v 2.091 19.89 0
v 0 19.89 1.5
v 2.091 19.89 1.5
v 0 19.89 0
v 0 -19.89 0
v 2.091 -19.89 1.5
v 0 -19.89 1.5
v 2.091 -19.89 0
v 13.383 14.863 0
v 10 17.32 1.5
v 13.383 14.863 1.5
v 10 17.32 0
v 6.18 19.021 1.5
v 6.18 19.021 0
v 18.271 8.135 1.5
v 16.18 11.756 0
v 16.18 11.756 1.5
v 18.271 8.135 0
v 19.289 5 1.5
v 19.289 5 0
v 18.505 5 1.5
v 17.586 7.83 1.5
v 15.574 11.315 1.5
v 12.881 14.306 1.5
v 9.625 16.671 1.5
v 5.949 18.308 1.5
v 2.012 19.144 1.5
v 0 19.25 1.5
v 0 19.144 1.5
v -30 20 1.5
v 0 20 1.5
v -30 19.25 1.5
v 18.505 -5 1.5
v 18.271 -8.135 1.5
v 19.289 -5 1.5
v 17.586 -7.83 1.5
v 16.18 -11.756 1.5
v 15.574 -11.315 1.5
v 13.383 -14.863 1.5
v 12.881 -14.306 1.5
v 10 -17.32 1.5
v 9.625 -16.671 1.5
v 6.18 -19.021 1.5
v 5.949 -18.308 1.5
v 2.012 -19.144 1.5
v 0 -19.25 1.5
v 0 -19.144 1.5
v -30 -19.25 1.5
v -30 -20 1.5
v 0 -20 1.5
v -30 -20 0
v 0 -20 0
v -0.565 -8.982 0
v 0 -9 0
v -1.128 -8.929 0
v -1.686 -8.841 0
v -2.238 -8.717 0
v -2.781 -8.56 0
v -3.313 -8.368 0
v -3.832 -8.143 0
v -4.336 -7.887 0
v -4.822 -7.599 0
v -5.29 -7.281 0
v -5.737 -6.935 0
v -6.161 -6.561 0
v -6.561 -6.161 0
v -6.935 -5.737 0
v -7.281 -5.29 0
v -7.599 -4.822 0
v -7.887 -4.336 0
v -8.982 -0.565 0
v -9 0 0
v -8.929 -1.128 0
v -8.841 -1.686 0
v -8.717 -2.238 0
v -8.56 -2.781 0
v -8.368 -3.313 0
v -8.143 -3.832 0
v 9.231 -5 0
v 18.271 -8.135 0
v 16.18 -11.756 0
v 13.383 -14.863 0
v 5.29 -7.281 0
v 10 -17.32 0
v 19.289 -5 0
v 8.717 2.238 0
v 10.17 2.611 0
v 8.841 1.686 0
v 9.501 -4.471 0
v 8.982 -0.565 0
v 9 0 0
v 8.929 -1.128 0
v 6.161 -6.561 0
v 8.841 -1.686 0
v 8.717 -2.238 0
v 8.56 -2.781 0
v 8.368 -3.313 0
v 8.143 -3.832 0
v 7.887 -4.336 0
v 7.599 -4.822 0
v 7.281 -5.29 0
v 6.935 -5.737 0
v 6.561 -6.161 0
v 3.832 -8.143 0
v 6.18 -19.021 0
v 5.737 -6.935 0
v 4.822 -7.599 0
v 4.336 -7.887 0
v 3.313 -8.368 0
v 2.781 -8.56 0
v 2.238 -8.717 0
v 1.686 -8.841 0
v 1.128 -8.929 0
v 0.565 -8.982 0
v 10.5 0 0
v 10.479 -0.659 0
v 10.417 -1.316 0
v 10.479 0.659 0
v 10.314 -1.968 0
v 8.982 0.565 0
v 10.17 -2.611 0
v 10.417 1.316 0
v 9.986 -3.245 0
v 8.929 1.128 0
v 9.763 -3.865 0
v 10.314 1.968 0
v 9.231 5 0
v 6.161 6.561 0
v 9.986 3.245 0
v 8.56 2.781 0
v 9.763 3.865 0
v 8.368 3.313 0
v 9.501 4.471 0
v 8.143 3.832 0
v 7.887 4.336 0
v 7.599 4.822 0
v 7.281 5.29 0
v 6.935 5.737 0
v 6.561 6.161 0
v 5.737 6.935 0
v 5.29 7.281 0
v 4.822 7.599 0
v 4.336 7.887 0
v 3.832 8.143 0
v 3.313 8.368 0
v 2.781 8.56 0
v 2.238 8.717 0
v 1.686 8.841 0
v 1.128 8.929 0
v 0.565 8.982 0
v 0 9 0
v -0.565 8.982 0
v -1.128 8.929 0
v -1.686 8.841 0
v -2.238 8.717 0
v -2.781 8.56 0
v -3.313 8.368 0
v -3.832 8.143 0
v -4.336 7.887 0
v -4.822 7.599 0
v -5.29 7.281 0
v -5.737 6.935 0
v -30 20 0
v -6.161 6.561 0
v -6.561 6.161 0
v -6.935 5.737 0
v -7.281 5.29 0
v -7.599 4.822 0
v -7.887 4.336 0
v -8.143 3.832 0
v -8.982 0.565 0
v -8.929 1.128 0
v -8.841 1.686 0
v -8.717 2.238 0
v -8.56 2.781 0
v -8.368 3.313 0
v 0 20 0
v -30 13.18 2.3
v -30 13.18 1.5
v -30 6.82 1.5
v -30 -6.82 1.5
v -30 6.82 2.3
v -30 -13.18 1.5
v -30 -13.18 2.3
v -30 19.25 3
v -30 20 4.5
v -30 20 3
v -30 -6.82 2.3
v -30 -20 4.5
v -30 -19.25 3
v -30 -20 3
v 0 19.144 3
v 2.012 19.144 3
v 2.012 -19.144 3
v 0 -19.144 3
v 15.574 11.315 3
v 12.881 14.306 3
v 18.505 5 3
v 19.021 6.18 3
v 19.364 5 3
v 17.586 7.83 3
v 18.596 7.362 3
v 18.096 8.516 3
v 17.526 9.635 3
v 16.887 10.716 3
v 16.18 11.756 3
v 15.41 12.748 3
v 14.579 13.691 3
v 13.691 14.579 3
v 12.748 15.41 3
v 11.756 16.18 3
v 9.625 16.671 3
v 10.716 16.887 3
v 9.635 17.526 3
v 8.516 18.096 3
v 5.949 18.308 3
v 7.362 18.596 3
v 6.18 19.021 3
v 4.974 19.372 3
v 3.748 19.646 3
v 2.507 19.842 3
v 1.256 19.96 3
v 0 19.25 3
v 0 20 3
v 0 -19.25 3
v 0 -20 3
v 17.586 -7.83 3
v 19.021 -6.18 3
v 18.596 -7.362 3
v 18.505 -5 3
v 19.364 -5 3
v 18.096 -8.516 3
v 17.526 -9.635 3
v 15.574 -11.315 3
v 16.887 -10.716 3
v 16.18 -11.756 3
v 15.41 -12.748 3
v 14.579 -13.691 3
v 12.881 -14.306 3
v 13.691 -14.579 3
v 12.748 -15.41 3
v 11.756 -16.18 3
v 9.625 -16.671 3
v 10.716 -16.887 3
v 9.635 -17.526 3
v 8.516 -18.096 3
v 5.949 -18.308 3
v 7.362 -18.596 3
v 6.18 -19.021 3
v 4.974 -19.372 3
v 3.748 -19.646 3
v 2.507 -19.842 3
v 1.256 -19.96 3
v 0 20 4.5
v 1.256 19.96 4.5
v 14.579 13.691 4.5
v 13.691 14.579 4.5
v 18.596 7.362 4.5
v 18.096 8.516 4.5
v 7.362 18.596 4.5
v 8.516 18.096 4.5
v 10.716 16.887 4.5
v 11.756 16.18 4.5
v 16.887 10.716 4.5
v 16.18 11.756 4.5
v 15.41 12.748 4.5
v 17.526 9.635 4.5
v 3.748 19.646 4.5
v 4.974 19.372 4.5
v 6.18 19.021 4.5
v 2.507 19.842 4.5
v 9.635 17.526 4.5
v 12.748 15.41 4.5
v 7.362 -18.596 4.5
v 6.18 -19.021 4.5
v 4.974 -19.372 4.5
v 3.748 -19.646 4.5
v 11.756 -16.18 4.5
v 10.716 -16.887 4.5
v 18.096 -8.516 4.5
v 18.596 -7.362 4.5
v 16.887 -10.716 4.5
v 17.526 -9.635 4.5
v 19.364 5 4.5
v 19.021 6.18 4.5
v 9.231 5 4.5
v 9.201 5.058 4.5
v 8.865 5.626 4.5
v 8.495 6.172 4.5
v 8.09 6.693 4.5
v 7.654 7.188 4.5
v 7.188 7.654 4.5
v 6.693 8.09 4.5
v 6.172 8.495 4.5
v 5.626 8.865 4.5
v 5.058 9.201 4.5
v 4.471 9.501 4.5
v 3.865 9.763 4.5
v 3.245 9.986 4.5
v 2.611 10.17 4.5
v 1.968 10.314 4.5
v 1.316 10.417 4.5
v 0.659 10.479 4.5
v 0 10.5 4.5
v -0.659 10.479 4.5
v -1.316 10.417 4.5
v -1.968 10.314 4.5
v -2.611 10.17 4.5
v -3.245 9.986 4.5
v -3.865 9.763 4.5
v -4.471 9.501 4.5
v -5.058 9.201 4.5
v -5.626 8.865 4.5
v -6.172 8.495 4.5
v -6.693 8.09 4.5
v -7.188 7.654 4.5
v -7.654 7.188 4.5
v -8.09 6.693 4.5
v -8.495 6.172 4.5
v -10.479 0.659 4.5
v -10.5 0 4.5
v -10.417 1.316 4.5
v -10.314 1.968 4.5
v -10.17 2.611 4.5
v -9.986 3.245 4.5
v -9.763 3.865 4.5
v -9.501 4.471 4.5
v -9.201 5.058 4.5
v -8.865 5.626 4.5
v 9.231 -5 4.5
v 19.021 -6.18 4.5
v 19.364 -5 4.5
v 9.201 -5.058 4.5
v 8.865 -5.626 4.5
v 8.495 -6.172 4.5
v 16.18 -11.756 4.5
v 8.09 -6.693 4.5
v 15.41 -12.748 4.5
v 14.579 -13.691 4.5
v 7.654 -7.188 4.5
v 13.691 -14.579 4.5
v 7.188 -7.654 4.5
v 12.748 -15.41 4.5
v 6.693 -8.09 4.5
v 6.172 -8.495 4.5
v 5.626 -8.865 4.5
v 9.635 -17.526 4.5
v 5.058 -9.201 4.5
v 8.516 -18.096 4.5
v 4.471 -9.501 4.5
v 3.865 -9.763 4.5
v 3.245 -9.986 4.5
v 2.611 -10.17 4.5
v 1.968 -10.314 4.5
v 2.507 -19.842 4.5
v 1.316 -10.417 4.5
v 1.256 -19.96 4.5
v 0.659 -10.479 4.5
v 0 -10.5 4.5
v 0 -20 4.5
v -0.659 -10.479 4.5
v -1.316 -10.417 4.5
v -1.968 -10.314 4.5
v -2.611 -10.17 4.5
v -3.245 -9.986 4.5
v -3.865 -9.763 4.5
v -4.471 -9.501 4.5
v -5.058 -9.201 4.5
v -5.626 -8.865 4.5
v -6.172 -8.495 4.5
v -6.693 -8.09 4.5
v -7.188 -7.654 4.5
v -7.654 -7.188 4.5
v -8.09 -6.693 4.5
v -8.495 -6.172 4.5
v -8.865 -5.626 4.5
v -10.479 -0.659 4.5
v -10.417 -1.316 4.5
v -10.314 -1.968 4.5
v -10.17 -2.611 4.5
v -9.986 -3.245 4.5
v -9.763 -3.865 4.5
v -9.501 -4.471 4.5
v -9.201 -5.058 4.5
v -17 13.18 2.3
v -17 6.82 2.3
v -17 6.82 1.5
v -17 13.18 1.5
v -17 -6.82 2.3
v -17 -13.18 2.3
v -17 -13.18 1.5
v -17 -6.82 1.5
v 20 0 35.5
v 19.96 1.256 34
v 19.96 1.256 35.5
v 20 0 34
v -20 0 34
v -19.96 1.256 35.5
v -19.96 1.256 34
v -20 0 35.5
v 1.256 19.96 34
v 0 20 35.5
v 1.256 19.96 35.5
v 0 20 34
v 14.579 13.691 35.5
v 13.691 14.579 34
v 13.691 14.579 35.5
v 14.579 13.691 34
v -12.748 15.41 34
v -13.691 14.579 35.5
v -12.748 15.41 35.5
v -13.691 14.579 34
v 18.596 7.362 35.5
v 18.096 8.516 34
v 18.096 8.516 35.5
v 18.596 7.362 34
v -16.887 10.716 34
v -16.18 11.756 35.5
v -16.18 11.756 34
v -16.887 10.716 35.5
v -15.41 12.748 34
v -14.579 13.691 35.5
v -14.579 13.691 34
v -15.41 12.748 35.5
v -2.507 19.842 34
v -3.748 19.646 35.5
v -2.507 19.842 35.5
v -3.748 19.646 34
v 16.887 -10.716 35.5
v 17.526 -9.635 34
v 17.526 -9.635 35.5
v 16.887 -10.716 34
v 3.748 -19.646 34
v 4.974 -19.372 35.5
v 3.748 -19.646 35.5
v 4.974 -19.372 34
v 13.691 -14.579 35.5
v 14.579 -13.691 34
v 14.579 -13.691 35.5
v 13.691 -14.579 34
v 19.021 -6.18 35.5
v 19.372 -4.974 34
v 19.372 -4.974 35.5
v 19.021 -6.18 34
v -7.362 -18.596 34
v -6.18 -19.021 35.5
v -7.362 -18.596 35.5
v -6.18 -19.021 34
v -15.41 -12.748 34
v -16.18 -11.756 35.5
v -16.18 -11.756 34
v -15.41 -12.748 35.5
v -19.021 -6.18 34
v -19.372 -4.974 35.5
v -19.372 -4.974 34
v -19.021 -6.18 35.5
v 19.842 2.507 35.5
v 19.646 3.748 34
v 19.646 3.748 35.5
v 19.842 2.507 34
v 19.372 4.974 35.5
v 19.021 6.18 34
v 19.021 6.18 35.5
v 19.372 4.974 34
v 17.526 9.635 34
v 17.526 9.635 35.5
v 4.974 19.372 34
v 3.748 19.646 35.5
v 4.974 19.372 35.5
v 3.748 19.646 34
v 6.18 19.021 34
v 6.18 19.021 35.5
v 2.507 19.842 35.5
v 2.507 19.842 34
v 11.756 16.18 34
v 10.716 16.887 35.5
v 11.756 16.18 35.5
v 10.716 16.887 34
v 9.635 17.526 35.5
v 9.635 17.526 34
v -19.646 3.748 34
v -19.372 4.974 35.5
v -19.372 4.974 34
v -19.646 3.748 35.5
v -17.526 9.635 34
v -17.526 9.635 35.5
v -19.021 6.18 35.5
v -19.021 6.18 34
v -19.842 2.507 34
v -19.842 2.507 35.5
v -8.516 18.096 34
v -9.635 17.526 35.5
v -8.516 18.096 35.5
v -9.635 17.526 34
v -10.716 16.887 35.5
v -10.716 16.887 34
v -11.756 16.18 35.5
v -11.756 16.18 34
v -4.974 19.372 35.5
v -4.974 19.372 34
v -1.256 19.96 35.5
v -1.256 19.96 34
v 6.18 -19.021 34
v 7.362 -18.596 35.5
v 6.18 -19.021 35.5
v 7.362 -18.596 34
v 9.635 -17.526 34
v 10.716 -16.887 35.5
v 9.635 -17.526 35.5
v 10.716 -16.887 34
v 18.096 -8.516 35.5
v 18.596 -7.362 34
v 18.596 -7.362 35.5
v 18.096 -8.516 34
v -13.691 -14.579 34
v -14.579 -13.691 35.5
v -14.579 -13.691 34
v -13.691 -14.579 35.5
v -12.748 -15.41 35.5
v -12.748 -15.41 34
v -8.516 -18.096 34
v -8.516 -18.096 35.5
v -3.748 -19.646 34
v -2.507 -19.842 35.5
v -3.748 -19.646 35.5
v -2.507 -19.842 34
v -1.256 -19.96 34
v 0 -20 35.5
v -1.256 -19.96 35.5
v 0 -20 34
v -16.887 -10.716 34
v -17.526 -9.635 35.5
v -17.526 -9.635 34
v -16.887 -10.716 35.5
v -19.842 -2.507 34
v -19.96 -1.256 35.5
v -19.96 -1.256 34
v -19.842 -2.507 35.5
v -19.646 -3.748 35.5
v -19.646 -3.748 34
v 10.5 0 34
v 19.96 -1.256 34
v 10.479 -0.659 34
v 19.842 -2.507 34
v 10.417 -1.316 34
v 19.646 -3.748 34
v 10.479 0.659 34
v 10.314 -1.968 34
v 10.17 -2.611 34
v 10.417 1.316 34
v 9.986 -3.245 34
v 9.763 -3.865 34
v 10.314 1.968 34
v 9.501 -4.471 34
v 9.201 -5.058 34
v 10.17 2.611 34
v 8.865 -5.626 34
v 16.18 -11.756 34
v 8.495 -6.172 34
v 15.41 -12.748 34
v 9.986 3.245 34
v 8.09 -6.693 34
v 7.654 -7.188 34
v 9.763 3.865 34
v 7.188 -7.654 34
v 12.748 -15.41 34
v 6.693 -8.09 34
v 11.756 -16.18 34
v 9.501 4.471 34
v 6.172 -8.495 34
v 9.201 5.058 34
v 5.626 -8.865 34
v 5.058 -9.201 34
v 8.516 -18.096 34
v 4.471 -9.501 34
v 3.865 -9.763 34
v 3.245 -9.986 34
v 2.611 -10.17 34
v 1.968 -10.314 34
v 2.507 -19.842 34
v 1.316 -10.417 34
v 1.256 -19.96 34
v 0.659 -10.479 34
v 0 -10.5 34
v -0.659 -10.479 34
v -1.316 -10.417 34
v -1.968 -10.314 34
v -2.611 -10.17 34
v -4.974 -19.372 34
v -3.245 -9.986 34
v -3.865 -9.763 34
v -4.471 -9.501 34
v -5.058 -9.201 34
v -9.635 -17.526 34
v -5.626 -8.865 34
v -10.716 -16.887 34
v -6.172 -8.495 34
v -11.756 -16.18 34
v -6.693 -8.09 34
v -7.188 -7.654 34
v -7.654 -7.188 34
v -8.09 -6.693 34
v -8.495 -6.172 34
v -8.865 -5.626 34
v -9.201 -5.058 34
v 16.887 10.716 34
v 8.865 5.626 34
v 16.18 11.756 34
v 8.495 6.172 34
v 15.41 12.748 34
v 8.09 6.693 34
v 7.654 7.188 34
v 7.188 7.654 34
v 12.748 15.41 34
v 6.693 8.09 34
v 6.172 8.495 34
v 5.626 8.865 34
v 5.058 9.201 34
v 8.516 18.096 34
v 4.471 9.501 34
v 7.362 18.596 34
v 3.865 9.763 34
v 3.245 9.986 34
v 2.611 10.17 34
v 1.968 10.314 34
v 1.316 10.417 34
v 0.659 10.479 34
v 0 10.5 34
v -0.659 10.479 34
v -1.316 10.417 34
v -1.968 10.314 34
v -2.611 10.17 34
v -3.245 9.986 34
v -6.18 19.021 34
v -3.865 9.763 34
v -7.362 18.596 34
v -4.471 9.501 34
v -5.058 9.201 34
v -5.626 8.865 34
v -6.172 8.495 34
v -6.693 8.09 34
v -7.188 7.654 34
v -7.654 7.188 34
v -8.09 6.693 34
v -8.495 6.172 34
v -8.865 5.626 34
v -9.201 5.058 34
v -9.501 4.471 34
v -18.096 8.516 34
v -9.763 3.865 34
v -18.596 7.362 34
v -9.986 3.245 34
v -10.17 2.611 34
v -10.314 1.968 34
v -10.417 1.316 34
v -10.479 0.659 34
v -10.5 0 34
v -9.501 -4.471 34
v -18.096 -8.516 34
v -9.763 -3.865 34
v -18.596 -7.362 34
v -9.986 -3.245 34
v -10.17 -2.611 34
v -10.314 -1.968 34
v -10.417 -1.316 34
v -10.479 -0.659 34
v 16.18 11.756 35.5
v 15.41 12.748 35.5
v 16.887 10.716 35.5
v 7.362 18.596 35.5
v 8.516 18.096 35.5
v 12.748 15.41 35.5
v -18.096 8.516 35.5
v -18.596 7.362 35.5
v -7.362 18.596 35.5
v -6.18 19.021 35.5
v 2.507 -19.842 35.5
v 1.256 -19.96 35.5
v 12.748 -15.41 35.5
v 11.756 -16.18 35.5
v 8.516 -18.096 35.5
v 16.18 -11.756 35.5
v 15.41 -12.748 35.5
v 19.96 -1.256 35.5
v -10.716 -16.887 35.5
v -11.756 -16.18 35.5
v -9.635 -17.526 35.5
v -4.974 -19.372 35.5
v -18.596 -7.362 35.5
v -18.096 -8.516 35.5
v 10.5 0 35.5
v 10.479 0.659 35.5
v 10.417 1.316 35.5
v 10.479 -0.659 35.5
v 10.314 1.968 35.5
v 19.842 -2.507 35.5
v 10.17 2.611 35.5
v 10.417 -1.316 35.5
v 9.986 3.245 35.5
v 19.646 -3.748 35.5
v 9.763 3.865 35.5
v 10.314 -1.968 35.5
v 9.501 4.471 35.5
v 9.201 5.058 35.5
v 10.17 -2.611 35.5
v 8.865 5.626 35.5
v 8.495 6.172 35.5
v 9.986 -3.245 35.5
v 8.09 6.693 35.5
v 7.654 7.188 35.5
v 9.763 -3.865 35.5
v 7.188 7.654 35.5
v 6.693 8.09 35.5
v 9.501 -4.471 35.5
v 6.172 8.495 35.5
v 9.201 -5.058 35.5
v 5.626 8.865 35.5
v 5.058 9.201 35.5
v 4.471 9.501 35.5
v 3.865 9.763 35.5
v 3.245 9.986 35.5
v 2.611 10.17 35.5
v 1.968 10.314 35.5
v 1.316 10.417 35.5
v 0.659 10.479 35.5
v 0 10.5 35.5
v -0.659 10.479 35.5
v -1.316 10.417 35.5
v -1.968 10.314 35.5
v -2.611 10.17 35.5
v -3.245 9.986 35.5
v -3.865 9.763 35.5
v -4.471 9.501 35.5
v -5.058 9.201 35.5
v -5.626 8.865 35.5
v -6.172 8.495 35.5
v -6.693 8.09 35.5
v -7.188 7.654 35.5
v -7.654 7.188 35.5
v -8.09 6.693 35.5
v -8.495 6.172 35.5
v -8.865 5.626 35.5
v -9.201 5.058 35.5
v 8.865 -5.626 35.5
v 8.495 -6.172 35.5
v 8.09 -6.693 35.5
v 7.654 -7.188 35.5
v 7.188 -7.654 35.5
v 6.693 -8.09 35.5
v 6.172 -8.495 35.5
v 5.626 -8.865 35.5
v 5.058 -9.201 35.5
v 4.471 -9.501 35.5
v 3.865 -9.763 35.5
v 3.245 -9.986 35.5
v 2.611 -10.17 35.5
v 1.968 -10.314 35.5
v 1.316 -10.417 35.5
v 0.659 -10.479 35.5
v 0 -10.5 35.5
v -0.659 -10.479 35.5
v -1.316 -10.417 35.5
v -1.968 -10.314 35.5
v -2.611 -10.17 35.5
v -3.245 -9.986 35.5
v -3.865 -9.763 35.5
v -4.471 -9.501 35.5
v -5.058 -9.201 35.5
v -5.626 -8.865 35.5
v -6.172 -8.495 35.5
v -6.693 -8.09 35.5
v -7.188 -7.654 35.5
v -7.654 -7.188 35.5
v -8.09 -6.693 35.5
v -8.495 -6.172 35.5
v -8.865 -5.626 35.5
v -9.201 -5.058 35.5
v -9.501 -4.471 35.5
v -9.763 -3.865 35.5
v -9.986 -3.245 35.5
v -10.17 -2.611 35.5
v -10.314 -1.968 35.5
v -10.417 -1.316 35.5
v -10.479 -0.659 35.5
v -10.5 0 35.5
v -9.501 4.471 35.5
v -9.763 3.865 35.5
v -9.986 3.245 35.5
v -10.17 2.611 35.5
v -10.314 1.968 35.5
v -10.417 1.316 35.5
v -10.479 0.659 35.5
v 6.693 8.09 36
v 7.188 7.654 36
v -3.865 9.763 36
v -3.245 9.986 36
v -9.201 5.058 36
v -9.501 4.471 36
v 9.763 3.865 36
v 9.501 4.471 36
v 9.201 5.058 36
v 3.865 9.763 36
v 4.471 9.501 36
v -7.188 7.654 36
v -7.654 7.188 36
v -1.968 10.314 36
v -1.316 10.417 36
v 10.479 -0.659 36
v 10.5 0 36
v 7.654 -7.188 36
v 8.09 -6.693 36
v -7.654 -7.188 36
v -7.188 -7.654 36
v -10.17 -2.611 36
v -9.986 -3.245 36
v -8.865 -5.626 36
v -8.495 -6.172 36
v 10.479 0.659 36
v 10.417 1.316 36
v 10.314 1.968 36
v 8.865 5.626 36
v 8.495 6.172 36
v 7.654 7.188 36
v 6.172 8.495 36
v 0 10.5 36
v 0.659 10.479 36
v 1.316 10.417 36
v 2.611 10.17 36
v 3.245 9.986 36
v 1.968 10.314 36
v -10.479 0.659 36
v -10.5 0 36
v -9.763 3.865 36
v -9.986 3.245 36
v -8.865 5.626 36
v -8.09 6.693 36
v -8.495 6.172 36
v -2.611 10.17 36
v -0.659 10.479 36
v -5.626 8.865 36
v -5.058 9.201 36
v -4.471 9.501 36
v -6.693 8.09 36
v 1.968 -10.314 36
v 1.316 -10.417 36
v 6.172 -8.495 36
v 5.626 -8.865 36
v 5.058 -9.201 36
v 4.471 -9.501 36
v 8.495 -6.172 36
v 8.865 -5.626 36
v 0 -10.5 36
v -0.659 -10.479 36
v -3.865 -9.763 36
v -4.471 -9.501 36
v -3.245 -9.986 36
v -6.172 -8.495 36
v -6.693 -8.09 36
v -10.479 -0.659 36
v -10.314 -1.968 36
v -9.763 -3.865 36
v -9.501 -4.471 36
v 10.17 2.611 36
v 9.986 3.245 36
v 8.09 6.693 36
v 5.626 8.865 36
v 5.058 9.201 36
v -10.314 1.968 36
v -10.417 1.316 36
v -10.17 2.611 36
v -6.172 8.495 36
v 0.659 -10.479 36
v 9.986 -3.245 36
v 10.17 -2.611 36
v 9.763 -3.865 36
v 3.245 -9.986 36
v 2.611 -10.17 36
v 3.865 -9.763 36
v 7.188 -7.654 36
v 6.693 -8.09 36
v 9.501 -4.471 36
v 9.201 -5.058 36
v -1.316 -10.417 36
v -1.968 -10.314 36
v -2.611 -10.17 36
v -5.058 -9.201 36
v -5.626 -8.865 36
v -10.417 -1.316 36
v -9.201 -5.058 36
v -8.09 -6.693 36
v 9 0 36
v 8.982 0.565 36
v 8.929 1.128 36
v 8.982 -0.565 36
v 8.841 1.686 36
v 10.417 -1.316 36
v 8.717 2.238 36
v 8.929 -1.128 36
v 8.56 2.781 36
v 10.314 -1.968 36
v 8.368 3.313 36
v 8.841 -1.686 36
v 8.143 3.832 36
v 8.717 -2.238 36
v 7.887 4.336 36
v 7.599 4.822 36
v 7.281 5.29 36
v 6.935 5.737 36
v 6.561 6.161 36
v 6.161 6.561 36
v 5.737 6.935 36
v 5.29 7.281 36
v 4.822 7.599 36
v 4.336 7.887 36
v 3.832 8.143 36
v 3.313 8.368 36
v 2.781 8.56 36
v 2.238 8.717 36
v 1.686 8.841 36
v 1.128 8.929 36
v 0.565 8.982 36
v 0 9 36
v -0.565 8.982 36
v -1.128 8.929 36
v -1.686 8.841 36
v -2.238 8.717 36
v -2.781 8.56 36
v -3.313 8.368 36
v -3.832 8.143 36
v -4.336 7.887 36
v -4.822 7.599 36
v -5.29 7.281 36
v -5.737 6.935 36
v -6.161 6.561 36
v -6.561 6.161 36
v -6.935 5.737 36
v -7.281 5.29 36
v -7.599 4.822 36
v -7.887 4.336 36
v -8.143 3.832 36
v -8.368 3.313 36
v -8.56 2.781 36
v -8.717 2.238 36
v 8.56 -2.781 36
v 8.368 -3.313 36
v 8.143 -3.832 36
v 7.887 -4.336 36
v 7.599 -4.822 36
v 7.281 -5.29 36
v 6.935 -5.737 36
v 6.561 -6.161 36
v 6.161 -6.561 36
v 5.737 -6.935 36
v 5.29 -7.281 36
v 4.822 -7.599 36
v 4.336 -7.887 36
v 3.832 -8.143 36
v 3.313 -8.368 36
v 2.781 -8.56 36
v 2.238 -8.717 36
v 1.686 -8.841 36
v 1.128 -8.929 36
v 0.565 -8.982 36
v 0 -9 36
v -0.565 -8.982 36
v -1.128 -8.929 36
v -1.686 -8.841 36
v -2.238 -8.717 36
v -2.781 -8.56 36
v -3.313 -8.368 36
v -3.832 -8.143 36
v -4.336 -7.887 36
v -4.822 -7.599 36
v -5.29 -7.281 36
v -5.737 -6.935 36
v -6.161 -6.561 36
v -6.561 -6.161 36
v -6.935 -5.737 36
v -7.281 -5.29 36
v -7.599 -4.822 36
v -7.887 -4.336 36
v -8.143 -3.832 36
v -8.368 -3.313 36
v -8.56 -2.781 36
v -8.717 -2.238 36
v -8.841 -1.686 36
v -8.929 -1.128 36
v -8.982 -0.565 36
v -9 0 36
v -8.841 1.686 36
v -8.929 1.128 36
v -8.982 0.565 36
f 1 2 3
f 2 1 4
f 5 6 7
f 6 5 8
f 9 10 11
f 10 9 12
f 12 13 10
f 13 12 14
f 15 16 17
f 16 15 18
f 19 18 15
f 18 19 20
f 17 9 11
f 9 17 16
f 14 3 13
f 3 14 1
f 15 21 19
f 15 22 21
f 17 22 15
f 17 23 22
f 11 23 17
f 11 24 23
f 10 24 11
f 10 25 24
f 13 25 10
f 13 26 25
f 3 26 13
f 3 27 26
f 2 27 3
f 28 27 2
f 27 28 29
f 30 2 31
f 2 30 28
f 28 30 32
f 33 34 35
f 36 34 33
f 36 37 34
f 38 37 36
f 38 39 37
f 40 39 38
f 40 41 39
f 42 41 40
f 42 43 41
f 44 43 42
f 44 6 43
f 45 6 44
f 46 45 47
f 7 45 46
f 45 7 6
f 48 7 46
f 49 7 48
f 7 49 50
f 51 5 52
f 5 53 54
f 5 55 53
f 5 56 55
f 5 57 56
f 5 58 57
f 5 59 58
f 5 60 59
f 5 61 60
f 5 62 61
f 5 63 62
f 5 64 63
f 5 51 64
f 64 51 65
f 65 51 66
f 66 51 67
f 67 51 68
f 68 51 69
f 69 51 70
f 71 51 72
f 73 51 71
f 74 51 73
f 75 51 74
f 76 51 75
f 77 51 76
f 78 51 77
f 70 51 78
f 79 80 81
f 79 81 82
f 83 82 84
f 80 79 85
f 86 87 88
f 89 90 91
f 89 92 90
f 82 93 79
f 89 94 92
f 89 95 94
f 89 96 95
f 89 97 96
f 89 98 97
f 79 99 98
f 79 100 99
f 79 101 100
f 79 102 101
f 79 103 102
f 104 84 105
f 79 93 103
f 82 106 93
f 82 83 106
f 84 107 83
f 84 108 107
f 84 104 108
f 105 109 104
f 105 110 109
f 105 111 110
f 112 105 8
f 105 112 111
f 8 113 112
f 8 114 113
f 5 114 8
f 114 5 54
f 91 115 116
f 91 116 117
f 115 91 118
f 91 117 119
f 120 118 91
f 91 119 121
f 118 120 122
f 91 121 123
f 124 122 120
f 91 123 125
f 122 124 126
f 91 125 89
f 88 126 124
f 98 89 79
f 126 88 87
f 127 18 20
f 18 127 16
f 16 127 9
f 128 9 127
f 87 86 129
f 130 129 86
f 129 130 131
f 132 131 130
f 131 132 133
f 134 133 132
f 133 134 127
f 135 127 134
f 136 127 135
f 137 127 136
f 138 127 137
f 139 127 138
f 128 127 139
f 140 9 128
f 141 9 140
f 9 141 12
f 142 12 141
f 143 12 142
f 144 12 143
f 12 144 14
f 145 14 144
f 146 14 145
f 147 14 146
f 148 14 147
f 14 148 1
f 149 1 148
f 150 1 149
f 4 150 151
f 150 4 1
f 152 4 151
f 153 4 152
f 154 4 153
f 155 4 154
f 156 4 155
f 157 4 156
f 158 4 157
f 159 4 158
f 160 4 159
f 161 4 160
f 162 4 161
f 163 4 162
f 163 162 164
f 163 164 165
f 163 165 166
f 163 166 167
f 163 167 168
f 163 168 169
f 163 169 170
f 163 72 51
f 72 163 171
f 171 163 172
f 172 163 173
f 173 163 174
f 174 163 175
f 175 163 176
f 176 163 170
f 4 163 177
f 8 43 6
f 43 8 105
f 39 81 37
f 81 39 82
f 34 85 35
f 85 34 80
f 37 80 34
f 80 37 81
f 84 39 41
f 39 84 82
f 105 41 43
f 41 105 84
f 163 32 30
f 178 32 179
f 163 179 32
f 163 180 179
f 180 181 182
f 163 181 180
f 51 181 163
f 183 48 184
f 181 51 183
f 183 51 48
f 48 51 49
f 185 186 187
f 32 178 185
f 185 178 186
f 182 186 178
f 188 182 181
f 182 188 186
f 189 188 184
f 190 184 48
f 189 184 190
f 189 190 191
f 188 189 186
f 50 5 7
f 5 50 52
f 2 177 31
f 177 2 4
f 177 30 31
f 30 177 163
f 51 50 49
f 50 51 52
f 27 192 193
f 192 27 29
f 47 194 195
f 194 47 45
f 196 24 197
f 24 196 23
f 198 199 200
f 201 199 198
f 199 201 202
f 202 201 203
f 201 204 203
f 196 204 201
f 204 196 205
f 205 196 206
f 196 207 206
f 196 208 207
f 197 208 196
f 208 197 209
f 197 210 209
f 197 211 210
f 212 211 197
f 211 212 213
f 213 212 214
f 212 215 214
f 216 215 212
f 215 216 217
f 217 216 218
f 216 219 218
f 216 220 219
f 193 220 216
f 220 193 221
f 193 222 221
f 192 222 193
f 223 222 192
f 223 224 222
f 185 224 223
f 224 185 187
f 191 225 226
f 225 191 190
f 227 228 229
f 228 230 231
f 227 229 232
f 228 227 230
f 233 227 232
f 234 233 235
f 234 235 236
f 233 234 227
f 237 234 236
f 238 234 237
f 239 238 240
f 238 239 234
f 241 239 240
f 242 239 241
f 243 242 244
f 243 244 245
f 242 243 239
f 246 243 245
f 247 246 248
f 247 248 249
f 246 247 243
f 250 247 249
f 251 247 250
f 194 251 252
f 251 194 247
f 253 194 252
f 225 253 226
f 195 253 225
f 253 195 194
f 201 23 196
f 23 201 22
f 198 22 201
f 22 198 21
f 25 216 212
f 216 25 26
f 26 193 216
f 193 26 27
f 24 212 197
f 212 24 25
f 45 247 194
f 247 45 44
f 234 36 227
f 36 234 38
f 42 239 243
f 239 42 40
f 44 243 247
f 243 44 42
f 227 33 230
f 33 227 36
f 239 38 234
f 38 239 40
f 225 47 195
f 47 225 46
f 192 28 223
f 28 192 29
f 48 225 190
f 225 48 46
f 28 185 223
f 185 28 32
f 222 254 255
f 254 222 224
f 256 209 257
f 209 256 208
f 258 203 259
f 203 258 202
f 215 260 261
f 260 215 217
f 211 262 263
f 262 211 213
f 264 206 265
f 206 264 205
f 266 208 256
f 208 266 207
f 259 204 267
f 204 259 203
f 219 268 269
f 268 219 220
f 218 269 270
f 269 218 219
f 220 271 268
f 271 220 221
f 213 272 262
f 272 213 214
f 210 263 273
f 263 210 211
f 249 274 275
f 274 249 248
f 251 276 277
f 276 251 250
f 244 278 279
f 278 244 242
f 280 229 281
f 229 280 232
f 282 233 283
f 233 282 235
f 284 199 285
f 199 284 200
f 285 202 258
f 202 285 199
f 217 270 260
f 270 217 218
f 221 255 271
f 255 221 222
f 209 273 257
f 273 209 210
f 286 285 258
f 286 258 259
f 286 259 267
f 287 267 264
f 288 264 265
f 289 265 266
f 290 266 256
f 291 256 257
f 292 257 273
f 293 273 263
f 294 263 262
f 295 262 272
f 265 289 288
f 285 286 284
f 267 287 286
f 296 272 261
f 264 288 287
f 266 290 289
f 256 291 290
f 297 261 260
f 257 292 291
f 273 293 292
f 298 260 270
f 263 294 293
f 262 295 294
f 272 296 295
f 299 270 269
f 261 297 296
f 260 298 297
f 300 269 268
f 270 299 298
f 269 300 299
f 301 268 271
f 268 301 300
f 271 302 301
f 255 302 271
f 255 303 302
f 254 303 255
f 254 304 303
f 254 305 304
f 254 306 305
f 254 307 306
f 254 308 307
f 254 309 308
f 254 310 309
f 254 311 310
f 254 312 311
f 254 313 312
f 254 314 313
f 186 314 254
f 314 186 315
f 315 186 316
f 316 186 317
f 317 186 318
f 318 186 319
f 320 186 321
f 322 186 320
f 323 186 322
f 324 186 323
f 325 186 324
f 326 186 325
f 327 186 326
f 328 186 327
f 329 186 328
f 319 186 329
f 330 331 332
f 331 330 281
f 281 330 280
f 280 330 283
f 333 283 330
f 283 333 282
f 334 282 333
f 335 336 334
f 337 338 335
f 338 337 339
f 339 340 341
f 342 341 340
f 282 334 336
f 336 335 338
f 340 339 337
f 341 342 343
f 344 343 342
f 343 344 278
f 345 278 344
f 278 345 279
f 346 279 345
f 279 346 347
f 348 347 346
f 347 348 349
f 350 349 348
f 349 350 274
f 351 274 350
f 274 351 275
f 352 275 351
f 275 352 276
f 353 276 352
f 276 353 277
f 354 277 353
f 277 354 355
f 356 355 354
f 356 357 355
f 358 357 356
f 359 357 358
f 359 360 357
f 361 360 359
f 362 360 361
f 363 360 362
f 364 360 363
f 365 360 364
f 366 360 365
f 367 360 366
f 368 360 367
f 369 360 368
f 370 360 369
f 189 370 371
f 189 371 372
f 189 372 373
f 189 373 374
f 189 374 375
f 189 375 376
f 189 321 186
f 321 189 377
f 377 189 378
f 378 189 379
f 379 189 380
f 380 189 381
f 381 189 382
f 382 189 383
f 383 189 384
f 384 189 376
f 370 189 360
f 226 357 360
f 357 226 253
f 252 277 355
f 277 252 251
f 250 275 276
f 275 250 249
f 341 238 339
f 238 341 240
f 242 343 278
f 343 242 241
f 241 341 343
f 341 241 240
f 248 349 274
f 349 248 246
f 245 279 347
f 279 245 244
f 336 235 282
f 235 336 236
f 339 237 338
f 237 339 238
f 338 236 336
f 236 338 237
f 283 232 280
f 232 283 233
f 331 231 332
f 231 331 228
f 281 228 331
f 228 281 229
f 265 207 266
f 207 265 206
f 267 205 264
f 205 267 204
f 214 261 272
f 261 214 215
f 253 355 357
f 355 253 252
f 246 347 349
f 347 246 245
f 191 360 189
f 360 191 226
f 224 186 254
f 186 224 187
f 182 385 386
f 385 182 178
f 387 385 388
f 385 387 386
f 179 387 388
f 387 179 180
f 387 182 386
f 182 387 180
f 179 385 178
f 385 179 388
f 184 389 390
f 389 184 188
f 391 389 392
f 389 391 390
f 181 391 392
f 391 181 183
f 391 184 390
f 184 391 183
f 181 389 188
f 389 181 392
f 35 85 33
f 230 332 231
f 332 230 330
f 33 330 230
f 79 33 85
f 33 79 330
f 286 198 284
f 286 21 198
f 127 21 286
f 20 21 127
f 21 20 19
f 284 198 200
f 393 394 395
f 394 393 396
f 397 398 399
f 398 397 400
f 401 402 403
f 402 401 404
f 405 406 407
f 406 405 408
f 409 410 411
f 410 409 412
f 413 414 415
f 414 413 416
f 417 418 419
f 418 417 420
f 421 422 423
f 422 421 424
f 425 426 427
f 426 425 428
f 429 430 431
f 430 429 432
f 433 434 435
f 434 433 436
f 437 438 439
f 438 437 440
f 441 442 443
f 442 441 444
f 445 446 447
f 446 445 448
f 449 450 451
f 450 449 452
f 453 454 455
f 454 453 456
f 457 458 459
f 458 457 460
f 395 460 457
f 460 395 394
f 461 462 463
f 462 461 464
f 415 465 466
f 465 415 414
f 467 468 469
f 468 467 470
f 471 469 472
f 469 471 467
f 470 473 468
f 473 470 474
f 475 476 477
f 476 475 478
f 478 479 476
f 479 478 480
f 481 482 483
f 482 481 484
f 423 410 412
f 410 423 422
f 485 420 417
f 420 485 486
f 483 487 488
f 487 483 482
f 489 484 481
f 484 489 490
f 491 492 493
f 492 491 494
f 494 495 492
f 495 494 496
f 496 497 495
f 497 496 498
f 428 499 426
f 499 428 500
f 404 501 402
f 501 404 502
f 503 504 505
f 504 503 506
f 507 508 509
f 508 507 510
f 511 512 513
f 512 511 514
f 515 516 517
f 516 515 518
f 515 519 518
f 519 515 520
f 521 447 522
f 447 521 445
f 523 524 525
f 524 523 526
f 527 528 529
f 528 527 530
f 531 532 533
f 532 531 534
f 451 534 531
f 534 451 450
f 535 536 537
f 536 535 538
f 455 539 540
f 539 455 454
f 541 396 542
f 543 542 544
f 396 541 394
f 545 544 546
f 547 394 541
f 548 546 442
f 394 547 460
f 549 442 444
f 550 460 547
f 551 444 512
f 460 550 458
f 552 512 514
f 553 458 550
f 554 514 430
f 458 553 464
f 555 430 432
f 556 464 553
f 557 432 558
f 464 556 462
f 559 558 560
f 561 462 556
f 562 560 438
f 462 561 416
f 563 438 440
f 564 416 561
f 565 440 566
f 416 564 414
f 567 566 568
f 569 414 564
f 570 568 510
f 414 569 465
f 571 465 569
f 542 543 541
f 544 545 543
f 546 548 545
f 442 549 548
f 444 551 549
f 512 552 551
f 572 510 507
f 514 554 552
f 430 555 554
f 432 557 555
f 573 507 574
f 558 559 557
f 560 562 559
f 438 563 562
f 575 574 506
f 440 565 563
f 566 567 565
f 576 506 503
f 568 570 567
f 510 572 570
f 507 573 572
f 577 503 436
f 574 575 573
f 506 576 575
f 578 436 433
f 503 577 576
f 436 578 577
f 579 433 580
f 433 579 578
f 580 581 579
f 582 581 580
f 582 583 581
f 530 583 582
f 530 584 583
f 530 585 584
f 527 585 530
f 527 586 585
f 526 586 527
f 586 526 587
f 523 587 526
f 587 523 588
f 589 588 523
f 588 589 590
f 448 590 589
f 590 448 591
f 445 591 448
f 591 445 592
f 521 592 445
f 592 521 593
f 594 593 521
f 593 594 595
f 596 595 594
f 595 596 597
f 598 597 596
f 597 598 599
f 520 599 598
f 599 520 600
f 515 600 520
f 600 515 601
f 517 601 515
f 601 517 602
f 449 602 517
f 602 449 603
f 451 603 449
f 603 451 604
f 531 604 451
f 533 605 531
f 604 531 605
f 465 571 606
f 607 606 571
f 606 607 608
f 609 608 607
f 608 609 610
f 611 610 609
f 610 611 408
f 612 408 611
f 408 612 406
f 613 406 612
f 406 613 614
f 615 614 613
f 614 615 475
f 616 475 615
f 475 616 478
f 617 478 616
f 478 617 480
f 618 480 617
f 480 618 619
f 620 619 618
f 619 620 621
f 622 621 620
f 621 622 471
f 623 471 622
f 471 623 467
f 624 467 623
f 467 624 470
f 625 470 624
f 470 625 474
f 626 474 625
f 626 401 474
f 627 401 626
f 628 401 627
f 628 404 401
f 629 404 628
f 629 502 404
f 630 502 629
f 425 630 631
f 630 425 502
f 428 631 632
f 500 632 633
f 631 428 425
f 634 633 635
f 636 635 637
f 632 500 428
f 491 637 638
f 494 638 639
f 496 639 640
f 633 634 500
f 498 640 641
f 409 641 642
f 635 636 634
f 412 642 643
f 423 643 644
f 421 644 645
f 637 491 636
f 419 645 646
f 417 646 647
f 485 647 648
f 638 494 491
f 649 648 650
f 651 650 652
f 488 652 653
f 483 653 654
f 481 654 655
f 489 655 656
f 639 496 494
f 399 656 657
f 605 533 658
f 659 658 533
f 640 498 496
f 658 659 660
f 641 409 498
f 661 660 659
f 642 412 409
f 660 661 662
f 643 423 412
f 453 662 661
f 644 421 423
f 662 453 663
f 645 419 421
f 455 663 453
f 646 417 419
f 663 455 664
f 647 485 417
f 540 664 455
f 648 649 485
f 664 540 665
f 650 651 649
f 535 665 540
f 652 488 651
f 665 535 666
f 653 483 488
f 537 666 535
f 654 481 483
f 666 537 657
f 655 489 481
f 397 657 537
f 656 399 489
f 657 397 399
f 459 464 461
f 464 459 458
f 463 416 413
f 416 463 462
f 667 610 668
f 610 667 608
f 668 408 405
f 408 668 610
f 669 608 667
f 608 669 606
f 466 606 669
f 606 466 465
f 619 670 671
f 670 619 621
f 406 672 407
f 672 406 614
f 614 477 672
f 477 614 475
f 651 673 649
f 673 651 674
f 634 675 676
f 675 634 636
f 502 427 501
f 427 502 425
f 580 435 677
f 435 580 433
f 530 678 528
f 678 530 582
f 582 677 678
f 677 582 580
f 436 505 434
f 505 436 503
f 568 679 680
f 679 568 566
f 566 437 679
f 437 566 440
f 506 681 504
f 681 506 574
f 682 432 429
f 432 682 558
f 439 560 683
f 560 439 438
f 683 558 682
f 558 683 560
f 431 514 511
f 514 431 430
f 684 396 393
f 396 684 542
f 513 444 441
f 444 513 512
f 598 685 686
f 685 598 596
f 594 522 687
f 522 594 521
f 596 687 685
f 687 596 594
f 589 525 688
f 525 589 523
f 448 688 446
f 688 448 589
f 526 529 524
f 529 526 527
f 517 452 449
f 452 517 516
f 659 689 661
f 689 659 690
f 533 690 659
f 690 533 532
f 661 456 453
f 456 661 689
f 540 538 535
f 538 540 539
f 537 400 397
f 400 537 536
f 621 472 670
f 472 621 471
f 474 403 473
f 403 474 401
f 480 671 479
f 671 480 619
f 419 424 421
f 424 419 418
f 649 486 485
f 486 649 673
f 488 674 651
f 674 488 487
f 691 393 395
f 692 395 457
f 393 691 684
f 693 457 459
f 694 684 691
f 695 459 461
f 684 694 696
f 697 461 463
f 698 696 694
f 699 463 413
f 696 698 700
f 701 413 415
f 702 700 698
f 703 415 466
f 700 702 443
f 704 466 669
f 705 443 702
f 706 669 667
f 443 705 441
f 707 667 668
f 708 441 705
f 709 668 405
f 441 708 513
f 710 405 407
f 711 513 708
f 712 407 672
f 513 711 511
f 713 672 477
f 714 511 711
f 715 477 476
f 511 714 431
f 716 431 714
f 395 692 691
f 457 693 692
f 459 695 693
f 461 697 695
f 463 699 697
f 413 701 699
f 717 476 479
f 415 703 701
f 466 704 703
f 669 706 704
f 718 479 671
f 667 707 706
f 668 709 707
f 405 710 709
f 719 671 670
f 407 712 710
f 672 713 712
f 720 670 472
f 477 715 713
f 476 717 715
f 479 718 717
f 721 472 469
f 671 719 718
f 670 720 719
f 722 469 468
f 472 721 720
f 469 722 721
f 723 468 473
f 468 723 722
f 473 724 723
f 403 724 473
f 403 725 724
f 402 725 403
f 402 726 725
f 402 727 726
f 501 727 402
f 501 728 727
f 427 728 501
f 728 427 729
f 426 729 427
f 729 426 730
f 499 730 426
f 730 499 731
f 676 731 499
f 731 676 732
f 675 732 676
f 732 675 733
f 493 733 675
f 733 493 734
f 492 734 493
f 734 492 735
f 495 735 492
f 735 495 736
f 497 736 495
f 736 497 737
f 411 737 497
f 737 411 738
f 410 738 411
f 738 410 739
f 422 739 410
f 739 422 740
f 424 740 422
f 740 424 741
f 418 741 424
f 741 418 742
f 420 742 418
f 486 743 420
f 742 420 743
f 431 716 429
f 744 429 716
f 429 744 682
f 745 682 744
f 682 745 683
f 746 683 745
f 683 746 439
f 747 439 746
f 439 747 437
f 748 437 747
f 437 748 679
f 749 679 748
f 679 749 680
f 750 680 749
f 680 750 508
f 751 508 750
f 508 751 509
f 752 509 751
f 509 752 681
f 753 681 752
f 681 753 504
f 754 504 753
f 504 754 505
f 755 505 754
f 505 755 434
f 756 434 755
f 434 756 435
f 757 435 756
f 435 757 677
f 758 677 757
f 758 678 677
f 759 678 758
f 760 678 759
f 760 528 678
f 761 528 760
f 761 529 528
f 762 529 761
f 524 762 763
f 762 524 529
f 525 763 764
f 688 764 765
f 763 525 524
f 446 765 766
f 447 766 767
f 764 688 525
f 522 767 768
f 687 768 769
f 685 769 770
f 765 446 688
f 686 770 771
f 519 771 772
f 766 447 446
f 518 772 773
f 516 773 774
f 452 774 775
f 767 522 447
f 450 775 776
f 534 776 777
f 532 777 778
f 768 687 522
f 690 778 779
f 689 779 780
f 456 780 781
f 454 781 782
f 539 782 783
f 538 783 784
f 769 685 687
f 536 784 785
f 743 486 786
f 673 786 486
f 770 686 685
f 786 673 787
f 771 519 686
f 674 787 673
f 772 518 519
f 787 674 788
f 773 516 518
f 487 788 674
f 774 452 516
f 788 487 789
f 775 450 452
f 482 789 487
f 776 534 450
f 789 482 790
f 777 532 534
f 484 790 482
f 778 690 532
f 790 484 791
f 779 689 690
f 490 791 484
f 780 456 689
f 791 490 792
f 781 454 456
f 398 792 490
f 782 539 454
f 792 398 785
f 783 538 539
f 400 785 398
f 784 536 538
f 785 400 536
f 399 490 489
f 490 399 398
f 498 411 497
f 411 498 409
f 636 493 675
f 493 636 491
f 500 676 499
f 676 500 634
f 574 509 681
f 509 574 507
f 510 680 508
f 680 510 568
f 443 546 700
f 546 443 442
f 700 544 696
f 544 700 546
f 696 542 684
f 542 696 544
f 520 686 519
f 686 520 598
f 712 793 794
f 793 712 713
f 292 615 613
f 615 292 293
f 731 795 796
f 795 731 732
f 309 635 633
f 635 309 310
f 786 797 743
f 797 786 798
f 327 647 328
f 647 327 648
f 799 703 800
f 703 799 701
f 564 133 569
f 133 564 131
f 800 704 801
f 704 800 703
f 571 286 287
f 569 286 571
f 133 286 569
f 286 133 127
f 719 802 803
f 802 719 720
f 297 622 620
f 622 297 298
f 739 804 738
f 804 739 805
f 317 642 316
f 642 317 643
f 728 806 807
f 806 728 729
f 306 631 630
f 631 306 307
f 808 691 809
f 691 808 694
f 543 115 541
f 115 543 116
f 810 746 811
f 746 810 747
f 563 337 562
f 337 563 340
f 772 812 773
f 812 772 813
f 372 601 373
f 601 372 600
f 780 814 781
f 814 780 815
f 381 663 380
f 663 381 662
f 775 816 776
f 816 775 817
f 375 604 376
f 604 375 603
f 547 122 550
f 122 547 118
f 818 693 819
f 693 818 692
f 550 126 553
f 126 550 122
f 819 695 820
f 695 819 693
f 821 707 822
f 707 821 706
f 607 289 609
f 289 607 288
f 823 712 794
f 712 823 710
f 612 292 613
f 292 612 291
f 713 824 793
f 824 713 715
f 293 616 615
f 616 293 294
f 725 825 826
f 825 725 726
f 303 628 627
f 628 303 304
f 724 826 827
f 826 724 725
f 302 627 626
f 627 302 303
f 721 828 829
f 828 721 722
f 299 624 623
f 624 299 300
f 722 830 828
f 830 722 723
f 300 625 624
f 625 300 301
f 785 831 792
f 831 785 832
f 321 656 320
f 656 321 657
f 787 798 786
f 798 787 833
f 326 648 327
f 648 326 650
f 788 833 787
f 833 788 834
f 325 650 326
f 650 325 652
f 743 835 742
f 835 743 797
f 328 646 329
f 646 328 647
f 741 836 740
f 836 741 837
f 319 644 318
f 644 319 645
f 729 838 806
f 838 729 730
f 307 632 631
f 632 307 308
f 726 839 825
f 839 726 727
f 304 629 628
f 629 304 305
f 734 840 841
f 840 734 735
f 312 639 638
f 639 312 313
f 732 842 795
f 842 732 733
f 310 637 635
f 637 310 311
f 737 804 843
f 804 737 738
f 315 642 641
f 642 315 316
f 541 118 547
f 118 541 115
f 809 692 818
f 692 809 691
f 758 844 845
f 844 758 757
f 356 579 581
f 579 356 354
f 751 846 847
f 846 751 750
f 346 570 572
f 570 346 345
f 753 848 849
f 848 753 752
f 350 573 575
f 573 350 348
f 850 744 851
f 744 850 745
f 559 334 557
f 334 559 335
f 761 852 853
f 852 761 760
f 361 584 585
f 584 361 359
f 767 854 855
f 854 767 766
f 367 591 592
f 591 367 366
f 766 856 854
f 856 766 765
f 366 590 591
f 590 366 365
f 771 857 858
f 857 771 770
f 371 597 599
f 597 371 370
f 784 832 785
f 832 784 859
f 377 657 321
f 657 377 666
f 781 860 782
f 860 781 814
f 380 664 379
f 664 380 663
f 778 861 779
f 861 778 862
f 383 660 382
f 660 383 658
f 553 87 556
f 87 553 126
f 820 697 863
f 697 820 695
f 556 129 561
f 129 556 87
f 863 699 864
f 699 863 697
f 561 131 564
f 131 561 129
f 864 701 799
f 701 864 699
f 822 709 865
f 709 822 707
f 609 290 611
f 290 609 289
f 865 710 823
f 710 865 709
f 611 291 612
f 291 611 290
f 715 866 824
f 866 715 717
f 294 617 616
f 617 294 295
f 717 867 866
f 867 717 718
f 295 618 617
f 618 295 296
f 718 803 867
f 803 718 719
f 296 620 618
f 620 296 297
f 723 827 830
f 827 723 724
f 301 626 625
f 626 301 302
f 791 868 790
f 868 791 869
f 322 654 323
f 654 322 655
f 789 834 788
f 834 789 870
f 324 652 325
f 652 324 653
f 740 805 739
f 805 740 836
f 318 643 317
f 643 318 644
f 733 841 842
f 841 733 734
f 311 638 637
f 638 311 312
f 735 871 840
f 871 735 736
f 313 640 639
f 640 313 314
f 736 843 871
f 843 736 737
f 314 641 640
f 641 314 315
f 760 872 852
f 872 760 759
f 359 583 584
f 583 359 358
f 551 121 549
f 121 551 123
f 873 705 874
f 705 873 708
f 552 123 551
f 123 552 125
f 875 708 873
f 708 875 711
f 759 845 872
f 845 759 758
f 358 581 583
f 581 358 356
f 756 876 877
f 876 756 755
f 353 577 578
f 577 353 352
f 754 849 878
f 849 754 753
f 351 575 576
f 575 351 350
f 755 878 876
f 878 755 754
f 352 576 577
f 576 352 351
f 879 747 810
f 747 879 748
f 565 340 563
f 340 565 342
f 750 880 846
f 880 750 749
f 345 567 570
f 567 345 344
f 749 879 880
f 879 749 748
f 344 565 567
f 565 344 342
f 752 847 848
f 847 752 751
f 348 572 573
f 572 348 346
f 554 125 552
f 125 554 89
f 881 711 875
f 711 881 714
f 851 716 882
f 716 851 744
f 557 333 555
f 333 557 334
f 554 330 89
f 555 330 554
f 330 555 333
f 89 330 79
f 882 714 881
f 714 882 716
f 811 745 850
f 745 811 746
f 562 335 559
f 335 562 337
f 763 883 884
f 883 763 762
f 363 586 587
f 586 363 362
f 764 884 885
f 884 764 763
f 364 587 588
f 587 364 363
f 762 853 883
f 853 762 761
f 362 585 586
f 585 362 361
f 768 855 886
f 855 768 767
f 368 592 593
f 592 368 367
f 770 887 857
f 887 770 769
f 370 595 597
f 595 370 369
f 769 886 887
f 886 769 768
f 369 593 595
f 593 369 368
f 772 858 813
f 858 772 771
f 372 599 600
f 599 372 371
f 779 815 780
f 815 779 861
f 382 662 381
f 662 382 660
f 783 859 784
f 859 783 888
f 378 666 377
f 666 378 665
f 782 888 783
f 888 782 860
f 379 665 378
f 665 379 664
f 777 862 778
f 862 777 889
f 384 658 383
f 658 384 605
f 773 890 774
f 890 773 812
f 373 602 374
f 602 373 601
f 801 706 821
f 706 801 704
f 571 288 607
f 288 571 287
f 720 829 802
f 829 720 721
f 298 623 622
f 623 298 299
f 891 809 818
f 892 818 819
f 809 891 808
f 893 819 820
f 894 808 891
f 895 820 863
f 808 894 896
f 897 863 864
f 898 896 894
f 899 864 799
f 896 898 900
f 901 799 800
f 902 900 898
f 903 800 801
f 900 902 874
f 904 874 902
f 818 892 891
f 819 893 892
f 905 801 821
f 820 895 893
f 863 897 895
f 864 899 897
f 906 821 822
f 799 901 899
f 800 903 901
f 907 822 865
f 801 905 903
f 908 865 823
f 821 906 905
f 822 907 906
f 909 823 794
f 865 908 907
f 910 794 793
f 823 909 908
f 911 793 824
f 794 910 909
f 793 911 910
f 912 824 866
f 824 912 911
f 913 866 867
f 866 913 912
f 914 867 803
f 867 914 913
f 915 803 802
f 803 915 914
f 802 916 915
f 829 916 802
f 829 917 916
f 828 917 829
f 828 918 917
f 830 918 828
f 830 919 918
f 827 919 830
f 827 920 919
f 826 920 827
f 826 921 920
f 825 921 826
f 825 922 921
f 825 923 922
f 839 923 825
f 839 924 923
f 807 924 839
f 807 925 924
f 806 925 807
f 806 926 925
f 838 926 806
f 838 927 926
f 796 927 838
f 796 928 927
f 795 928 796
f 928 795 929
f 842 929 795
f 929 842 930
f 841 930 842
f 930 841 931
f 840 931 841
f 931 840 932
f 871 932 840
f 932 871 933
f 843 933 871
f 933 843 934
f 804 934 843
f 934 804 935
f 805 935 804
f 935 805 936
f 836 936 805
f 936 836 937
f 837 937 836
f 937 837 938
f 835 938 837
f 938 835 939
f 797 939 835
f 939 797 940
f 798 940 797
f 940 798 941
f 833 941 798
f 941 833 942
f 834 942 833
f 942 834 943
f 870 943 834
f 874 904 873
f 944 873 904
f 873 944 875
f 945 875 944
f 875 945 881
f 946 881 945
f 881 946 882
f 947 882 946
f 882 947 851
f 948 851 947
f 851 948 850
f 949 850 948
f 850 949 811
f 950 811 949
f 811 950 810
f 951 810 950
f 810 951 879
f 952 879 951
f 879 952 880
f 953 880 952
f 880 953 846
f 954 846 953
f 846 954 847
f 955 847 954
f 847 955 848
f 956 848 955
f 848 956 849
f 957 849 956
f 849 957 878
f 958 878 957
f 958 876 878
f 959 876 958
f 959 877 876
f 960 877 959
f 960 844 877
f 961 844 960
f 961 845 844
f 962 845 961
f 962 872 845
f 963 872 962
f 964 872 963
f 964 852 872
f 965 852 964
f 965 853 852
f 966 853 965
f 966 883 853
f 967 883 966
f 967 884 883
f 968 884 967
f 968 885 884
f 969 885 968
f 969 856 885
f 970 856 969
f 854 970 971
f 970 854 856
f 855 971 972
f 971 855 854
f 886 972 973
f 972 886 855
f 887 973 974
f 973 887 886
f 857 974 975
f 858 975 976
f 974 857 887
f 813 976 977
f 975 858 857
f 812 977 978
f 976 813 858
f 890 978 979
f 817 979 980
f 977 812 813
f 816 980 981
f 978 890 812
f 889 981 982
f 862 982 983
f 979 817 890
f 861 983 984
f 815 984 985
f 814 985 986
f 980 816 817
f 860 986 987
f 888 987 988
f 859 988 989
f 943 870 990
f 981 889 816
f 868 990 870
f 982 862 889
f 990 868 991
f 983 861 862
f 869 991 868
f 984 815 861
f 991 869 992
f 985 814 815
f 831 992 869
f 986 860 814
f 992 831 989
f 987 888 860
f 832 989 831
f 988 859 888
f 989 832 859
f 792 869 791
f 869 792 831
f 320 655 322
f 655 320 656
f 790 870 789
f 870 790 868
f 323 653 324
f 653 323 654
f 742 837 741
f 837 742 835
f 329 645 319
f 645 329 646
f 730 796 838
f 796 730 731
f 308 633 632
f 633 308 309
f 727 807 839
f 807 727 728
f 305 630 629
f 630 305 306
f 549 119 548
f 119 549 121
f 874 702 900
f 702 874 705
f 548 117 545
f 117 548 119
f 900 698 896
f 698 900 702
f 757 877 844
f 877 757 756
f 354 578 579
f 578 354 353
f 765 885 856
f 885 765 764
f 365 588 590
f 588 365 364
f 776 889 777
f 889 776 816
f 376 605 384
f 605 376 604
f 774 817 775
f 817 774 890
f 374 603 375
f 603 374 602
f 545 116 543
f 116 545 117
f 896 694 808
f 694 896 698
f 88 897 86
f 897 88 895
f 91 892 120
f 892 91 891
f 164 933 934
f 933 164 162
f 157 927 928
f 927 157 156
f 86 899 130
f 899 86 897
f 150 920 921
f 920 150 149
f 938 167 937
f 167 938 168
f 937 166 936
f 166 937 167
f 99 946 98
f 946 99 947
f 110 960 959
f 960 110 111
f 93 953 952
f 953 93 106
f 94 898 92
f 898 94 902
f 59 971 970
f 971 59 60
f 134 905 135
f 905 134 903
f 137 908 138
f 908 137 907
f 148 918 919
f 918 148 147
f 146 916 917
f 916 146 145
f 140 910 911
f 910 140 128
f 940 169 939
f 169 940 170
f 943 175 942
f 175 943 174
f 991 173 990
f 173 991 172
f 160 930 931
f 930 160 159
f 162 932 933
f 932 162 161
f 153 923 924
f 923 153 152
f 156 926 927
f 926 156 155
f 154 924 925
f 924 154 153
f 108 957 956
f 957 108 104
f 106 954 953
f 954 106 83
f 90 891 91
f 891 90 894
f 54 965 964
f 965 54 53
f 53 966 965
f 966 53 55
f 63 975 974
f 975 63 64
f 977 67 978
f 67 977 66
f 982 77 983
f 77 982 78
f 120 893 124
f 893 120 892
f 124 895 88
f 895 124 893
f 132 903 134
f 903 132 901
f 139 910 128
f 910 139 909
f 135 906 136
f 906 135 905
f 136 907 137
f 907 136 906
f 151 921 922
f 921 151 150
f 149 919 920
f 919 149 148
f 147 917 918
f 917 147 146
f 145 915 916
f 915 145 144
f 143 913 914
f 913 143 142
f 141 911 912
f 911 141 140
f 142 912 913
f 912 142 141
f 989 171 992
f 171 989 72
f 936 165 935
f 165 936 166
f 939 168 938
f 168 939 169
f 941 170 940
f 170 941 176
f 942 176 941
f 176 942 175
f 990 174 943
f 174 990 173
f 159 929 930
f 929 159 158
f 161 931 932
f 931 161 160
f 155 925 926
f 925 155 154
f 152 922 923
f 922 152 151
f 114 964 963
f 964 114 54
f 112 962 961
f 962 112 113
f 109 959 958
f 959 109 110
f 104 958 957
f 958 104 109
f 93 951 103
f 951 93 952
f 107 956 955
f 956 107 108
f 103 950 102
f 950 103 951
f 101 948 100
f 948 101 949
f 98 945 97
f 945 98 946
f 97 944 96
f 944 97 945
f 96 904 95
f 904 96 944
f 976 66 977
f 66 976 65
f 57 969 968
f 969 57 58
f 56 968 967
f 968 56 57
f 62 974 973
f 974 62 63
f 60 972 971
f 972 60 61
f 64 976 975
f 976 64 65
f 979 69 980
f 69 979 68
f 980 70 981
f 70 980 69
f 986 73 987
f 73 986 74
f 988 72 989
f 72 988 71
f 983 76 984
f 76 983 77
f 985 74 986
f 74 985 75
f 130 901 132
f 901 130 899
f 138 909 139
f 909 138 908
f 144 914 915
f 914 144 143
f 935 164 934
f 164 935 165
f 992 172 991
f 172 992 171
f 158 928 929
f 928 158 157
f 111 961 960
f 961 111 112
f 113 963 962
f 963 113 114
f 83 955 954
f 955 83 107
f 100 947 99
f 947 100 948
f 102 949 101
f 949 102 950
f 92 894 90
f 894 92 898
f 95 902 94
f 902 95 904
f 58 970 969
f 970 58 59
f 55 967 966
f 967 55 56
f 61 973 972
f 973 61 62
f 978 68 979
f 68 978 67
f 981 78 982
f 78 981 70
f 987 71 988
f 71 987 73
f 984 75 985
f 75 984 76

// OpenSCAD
//Errel fruitmachine part:  coin slide coil.  (http://www.topgokkasten.nl/slide-errel/)
//(mine melted away because of a faulty pcb ;)
//(c)edwin@datux.nl

wand=1.5;
binnendiameter=18;
kraagdiameter=40;
lengte=36;
klemhouder=10;

difference()
{
    union()
    {
        //randje voorkant
        translate([0,0,lengte-0.5-wand])
        {
            //voorste kraag
            cylinder(d=kraagdiameter, h=wand, $fn=100);
        }

        //binnenkant achterkraag 
        translate([0,0,0])
        {
            difference()
            {
                union()
                {
                    //binnenste achterkraag
                    translate([0,0,0*wand])
                    {
                        cylinder(d=kraagdiameter, h=wand);
                        //klemhouder
                        translate([-(kraagdiameter/2+klemhouder),-kraagdiameter/2,0])
                        {
                            cube([kraagdiameter/2+klemhouder,kraagdiameter,wand],false);
                        }
                    }

                    //midden achterkraag (iets kleiner ivm koper begeleiding)
                    translate([0,0,1*wand])
                    {
                        cylinder(d=kraagdiameter-wand, h=wand);
                        //klemhouder
                        translate([-(kraagdiameter/2+klemhouder),-kraagdiameter/2+wand/2,0])
                        {
                            cube([kraagdiameter/2+klemhouder,kraagdiameter-wand,wand],false);
                        }
                    }
                    
                    //buitenste achterkraag
                    translate([0,0,2*wand])
                    {
                        cylinder(d=kraagdiameter, h=wand, $fn=100);
                        //klemhouder
                        translate([-(kraagdiameter/2+klemhouder),-kraagdiameter/2,0])
                        {
                            cube([kraagdiameter/2+klemhouder,kraagdiameter,wand],false);
                        }
                    }

                    
                }
                

                //uitsparing voor klemmen
                kd=0.8;
                kl=13;
                kb=6.36;
                translate([ -(kraagdiameter/2+klemhouder) ,kraagdiameter/4-kb/2,wand])
                {
                    cube([ kl, kb, kd], false);
                }

                translate([ -(kraagdiameter/2+klemhouder) ,-(kraagdiameter/4+kb/2),wand])
                {
                    cube([ kl, kb, kd], false);
                }

                
                //uitsparing voor koperdoorgang
                uitsparing=10;
                translate([0,-uitsparing/2,0])
                {
                    cube([kraagdiameter,uitsparing,wand*3],false);
                }
                
    
                
            }
            
            
            
        }

        //buitendiameter kern
        cylinder(d=binnendiameter+2*wand, h=lengte, $fn=100);
    }
    
    //binnendiameter kern uithollen
    cylinder(d=binnendiameter, h=lengte, $fn=100);
}
